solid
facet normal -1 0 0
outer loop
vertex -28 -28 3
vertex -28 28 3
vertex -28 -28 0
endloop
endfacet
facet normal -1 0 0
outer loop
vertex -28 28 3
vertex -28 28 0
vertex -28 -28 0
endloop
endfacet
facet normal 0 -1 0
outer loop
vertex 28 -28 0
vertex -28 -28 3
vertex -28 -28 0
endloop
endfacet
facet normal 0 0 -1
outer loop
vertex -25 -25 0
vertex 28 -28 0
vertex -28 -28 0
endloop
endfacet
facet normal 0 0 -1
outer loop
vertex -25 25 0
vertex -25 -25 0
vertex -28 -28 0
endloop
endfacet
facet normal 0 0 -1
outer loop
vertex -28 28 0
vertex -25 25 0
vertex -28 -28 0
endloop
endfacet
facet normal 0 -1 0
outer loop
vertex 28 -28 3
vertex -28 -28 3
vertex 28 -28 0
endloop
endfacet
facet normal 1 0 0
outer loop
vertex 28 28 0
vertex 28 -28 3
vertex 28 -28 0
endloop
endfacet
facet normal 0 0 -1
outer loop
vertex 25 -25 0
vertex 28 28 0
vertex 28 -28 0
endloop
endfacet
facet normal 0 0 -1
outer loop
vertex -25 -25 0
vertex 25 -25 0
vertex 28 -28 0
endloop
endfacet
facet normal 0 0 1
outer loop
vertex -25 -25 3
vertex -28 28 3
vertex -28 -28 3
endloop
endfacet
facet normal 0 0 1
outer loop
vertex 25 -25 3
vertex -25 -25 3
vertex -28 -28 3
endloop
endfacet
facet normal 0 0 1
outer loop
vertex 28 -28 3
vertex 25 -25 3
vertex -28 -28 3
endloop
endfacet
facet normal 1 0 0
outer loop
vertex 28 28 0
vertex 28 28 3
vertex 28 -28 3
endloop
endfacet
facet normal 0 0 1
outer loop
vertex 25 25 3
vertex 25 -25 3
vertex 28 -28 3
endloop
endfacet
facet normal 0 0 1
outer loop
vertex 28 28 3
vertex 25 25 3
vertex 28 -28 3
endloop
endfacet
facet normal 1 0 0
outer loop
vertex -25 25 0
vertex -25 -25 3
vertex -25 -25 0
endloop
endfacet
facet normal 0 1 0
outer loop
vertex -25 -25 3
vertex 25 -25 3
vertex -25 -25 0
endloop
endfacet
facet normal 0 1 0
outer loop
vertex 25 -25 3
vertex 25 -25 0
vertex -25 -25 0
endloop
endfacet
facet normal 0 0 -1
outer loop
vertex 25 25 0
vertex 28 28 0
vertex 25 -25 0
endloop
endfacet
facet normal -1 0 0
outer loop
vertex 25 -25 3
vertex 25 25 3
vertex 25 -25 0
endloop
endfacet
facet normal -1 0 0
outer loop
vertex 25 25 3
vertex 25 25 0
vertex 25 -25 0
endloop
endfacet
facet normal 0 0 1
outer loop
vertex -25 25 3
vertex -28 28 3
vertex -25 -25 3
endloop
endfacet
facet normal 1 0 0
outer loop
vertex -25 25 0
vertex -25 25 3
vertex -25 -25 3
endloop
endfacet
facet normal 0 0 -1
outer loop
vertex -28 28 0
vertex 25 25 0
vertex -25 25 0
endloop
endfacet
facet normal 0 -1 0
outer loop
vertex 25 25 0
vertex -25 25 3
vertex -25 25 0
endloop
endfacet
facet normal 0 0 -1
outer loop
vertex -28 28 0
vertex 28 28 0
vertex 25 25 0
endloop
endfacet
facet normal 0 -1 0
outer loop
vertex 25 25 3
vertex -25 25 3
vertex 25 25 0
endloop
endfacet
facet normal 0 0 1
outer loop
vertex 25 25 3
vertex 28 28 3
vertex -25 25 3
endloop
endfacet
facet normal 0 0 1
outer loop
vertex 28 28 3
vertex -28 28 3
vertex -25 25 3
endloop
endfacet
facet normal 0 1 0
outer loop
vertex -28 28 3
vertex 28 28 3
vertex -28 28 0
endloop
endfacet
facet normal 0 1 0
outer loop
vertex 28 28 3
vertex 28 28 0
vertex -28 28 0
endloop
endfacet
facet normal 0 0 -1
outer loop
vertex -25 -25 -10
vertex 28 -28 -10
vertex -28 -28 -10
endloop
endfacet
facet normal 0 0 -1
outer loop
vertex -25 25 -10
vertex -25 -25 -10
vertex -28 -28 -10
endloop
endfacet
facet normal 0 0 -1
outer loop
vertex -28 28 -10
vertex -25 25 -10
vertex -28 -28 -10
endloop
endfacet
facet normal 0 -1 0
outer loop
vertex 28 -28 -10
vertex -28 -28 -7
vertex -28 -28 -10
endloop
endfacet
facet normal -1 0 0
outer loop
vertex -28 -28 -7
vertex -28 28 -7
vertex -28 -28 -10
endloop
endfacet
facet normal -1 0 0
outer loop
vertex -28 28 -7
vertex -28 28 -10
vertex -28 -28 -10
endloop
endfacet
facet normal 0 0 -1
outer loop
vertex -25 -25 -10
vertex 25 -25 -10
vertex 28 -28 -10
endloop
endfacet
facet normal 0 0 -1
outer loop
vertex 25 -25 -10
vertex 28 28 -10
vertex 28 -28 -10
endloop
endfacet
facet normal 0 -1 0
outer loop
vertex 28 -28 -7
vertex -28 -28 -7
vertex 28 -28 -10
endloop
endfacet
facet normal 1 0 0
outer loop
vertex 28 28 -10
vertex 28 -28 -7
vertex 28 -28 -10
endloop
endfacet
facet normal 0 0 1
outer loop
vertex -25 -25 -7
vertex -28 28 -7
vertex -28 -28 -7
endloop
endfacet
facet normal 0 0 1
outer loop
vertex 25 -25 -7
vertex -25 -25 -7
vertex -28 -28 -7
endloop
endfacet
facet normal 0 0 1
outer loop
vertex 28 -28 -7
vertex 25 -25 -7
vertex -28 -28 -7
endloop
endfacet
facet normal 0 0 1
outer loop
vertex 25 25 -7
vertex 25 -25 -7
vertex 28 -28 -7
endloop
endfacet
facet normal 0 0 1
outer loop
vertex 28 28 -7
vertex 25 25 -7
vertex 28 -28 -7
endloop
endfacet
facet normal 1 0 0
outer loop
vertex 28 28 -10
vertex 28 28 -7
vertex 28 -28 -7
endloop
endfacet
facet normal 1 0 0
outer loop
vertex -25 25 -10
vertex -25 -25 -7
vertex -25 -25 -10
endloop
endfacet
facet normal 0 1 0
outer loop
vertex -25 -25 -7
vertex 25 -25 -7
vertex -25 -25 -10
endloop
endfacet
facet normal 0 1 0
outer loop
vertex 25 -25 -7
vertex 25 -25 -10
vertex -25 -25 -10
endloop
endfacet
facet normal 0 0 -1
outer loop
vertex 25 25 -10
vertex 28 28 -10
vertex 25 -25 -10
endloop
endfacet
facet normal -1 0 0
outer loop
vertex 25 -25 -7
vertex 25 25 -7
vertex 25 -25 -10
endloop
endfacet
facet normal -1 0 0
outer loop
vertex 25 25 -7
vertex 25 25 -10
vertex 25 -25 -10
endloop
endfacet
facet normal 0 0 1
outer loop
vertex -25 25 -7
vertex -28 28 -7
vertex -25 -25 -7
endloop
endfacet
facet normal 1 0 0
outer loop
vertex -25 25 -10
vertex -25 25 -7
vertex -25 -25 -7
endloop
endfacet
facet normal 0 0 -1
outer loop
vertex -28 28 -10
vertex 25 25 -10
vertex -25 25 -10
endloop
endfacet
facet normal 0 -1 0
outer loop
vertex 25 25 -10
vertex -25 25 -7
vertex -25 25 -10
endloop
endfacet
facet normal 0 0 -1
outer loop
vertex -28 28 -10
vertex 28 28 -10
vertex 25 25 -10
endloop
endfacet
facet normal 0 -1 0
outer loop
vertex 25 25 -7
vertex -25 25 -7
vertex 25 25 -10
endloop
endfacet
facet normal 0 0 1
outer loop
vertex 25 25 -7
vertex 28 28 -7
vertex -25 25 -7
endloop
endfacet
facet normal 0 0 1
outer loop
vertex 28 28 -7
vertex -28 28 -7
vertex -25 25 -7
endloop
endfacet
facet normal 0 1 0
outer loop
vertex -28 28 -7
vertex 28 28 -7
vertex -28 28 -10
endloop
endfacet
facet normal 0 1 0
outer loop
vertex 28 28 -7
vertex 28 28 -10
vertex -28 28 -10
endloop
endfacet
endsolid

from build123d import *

# Parameters (mm, degrees)
SKETCH1_W           = 56
SKETCH1_H           = 56
SKETCH1_W_2         = 50
SKETCH1_H_2         = 50
BOSS_EXTRUDE1_DEPTH = 3
SKETCH2_W           = 56
SKETCH2_H           = 56
SKETCH2_W_2         = 50
SKETCH2_H_2         = 50
BOSS_EXTRUDE2_DEPTH = 3


with BuildPart() as part:
    # Sketch1 → Boss-Extrude1 (new body)
    with BuildSketch(Plane.XY):
        Rectangle(SKETCH1_W, SKETCH1_H)
        Rectangle(SKETCH1_W_2, SKETCH1_H_2, mode=Mode.SUBTRACT)
    extrude(amount=BOSS_EXTRUDE1_DEPTH)


with BuildPart() as body_2:
    # Sketch2 → Boss-Extrude2 (new body)
    with BuildSketch(Plane.XY.offset(-10)):
        Rectangle(SKETCH2_W, SKETCH2_H)
        Rectangle(SKETCH2_W_2, SKETCH2_H_2, mode=Mode.SUBTRACT)
    extrude(amount=BOSS_EXTRUDE2_DEPTH)


solid = Compound([part.part, body_2.part])
